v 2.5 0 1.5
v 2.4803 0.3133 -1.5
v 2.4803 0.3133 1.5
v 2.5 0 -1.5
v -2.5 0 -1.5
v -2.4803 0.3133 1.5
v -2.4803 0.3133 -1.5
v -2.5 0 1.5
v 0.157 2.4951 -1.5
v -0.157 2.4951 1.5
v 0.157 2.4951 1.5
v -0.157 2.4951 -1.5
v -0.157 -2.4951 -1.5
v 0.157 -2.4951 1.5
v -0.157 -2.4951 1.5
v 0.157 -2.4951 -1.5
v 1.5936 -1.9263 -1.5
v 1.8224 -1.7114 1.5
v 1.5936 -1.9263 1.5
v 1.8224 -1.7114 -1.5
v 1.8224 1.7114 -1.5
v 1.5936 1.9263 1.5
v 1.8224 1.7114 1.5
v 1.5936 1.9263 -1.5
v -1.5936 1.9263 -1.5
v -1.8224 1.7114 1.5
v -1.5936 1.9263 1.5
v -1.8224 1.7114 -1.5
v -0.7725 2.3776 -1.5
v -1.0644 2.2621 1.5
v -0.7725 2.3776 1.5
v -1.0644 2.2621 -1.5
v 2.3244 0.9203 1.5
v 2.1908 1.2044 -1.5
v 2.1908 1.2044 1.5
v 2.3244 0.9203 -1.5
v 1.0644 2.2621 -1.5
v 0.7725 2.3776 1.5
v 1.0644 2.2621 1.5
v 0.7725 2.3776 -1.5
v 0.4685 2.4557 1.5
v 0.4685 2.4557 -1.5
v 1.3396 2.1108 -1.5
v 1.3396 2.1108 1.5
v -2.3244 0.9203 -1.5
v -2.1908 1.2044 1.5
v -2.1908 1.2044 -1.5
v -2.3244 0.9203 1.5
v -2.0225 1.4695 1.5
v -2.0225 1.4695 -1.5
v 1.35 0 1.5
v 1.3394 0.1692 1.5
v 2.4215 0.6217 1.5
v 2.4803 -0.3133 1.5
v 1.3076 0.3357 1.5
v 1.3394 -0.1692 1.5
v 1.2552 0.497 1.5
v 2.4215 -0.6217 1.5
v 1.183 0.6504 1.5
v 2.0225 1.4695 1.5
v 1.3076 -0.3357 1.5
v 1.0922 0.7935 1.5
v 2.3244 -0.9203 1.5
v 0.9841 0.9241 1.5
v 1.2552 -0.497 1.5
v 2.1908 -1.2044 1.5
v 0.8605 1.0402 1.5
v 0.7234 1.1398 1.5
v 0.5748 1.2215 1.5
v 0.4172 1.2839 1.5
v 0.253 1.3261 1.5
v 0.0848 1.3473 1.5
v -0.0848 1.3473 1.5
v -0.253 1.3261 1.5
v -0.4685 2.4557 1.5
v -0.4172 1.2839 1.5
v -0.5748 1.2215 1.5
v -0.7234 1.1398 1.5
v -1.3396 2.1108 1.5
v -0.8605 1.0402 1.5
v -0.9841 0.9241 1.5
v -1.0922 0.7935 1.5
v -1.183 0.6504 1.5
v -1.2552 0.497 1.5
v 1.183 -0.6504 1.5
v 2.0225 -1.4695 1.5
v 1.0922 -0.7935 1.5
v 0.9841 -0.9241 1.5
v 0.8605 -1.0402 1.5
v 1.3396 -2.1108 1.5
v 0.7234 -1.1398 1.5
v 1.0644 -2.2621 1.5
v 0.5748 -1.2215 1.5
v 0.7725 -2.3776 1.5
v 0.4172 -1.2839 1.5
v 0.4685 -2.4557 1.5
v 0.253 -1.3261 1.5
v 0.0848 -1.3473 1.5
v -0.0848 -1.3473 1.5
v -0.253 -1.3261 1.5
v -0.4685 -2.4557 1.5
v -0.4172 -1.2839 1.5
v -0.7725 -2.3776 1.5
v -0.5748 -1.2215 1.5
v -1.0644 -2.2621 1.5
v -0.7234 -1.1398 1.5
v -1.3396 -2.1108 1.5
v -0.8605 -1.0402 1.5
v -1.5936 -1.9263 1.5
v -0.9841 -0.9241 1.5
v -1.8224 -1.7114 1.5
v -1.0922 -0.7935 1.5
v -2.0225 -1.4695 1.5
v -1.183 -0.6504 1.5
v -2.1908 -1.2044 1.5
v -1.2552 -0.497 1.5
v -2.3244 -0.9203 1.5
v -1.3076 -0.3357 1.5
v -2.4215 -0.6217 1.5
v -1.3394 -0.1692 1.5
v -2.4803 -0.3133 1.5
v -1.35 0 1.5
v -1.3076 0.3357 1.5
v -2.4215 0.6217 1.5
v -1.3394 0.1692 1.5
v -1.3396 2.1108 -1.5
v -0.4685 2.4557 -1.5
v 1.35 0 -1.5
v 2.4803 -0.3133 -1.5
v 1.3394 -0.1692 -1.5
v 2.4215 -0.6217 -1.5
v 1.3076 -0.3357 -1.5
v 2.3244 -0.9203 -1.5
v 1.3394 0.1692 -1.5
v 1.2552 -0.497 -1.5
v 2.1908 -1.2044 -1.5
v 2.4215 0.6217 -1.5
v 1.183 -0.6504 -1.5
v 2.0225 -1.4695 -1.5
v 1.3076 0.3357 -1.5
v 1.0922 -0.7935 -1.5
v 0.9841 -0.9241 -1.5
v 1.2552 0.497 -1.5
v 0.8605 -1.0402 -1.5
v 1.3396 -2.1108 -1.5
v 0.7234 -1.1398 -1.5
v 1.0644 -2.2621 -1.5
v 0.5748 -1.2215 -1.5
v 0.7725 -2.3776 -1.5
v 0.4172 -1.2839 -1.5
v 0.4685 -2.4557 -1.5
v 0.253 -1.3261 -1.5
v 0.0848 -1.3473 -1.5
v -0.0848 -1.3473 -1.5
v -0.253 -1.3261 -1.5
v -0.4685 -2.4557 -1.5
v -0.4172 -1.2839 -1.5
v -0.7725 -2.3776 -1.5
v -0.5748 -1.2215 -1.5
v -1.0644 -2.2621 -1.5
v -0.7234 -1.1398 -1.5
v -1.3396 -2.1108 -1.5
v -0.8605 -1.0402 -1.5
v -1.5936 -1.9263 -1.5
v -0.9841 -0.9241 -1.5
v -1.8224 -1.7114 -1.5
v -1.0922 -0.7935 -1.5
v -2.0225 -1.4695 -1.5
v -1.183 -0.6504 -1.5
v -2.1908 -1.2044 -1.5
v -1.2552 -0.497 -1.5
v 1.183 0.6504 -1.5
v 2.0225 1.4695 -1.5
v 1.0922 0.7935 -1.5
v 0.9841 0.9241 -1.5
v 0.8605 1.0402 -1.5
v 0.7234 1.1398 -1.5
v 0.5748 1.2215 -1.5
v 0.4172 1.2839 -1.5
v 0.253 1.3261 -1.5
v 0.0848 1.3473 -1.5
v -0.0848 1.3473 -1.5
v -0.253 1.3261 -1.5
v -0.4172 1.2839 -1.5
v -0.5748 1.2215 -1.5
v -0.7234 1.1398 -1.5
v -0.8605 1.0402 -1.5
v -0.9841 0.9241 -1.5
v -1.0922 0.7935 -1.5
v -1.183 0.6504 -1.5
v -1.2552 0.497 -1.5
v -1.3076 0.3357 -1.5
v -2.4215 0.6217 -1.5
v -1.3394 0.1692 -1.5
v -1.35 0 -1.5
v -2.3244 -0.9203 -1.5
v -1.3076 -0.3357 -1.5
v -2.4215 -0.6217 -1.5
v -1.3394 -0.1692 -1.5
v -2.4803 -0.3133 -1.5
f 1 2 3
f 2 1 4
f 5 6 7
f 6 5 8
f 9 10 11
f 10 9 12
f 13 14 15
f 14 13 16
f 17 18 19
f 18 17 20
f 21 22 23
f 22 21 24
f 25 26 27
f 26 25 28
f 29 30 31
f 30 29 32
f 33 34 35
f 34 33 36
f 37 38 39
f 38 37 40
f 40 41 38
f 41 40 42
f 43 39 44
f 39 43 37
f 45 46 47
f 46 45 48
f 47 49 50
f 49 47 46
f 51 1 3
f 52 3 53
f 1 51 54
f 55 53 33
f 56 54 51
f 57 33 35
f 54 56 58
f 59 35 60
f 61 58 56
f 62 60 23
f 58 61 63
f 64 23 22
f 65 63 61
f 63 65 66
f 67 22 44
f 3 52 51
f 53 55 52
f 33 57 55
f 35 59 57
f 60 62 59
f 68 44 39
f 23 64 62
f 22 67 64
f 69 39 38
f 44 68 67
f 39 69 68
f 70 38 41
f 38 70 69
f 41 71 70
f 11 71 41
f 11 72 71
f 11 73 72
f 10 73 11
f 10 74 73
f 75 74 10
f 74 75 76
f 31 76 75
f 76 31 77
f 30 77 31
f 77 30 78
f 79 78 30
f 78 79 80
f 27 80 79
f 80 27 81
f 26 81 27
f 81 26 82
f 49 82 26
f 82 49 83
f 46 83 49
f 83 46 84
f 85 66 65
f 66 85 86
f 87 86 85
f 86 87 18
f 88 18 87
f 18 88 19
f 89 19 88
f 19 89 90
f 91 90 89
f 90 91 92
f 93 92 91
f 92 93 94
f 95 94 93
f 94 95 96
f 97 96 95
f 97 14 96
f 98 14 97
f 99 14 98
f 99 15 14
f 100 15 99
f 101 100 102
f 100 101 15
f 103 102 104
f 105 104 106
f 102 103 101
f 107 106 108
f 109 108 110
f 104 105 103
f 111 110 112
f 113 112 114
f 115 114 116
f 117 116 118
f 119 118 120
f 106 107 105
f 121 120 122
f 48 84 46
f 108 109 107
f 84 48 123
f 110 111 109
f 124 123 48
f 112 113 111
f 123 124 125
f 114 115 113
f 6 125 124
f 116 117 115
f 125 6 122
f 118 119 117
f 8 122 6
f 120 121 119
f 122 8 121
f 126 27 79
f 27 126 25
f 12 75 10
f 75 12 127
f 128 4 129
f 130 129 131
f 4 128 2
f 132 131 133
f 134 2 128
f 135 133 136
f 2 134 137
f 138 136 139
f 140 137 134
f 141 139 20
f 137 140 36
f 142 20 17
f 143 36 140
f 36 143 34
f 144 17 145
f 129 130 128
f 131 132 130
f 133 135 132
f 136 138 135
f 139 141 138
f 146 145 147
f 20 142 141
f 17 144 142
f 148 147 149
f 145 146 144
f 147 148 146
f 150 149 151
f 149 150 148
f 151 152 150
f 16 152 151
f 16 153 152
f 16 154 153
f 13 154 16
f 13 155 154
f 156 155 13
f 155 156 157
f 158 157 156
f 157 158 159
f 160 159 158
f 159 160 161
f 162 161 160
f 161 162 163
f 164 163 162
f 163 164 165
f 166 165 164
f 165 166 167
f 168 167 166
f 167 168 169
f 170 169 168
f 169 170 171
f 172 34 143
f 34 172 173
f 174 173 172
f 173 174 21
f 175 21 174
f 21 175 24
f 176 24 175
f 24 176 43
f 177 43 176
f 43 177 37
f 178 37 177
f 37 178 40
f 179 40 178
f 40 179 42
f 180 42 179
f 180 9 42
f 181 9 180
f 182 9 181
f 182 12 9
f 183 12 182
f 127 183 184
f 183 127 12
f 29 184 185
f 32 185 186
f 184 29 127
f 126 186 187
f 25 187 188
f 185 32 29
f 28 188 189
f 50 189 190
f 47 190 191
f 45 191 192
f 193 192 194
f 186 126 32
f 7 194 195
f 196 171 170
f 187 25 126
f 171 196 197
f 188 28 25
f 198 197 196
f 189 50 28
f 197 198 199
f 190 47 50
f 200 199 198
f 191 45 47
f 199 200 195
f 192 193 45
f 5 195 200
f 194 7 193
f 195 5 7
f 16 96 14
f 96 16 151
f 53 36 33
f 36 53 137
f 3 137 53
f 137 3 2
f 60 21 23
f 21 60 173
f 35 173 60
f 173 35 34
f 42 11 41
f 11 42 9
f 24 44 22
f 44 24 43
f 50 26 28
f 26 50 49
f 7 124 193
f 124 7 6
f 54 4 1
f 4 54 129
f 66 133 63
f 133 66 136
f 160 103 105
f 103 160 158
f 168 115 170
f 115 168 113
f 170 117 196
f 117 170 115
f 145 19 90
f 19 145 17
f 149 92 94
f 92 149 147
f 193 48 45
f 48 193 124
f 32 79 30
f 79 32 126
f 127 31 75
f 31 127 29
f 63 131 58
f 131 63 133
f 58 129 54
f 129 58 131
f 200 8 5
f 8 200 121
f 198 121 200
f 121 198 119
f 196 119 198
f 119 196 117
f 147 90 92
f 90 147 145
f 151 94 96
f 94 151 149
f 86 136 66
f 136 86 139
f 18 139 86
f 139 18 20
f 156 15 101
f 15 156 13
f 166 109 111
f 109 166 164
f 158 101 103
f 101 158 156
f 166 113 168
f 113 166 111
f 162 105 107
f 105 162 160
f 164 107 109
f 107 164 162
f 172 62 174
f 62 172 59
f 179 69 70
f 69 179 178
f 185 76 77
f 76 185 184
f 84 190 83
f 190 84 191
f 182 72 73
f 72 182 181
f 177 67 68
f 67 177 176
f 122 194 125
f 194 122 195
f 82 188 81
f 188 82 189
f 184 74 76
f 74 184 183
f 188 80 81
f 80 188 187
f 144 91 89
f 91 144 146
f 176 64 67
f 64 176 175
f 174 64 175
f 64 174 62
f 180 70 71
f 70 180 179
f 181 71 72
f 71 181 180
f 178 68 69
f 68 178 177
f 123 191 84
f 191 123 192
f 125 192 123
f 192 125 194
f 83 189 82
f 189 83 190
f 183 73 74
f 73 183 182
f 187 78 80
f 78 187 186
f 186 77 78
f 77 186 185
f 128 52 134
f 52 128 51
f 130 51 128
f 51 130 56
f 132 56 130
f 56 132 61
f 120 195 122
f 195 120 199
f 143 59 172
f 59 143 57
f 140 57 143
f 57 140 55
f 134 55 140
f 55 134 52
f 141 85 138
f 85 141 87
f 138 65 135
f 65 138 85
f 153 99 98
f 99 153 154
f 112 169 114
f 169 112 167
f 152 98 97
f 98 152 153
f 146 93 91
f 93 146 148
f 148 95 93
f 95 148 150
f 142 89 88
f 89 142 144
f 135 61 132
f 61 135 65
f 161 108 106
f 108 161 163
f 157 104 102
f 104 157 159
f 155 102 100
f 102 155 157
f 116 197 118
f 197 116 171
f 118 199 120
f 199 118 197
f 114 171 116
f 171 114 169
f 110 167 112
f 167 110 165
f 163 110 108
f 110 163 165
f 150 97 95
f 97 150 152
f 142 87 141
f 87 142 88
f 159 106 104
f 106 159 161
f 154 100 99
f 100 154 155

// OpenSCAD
$fn = 50;


difference() {
	union() {
		translate(v = [0, 0, -1.5000000000]) {
			cylinder(h = 3, r = 2.5000000000);
		}
	}
	union() {
		translate(v = [0, 0, -100.0000000000]) {
			cylinder(h = 200, r = 1.3500000000);
		}
	}
}
